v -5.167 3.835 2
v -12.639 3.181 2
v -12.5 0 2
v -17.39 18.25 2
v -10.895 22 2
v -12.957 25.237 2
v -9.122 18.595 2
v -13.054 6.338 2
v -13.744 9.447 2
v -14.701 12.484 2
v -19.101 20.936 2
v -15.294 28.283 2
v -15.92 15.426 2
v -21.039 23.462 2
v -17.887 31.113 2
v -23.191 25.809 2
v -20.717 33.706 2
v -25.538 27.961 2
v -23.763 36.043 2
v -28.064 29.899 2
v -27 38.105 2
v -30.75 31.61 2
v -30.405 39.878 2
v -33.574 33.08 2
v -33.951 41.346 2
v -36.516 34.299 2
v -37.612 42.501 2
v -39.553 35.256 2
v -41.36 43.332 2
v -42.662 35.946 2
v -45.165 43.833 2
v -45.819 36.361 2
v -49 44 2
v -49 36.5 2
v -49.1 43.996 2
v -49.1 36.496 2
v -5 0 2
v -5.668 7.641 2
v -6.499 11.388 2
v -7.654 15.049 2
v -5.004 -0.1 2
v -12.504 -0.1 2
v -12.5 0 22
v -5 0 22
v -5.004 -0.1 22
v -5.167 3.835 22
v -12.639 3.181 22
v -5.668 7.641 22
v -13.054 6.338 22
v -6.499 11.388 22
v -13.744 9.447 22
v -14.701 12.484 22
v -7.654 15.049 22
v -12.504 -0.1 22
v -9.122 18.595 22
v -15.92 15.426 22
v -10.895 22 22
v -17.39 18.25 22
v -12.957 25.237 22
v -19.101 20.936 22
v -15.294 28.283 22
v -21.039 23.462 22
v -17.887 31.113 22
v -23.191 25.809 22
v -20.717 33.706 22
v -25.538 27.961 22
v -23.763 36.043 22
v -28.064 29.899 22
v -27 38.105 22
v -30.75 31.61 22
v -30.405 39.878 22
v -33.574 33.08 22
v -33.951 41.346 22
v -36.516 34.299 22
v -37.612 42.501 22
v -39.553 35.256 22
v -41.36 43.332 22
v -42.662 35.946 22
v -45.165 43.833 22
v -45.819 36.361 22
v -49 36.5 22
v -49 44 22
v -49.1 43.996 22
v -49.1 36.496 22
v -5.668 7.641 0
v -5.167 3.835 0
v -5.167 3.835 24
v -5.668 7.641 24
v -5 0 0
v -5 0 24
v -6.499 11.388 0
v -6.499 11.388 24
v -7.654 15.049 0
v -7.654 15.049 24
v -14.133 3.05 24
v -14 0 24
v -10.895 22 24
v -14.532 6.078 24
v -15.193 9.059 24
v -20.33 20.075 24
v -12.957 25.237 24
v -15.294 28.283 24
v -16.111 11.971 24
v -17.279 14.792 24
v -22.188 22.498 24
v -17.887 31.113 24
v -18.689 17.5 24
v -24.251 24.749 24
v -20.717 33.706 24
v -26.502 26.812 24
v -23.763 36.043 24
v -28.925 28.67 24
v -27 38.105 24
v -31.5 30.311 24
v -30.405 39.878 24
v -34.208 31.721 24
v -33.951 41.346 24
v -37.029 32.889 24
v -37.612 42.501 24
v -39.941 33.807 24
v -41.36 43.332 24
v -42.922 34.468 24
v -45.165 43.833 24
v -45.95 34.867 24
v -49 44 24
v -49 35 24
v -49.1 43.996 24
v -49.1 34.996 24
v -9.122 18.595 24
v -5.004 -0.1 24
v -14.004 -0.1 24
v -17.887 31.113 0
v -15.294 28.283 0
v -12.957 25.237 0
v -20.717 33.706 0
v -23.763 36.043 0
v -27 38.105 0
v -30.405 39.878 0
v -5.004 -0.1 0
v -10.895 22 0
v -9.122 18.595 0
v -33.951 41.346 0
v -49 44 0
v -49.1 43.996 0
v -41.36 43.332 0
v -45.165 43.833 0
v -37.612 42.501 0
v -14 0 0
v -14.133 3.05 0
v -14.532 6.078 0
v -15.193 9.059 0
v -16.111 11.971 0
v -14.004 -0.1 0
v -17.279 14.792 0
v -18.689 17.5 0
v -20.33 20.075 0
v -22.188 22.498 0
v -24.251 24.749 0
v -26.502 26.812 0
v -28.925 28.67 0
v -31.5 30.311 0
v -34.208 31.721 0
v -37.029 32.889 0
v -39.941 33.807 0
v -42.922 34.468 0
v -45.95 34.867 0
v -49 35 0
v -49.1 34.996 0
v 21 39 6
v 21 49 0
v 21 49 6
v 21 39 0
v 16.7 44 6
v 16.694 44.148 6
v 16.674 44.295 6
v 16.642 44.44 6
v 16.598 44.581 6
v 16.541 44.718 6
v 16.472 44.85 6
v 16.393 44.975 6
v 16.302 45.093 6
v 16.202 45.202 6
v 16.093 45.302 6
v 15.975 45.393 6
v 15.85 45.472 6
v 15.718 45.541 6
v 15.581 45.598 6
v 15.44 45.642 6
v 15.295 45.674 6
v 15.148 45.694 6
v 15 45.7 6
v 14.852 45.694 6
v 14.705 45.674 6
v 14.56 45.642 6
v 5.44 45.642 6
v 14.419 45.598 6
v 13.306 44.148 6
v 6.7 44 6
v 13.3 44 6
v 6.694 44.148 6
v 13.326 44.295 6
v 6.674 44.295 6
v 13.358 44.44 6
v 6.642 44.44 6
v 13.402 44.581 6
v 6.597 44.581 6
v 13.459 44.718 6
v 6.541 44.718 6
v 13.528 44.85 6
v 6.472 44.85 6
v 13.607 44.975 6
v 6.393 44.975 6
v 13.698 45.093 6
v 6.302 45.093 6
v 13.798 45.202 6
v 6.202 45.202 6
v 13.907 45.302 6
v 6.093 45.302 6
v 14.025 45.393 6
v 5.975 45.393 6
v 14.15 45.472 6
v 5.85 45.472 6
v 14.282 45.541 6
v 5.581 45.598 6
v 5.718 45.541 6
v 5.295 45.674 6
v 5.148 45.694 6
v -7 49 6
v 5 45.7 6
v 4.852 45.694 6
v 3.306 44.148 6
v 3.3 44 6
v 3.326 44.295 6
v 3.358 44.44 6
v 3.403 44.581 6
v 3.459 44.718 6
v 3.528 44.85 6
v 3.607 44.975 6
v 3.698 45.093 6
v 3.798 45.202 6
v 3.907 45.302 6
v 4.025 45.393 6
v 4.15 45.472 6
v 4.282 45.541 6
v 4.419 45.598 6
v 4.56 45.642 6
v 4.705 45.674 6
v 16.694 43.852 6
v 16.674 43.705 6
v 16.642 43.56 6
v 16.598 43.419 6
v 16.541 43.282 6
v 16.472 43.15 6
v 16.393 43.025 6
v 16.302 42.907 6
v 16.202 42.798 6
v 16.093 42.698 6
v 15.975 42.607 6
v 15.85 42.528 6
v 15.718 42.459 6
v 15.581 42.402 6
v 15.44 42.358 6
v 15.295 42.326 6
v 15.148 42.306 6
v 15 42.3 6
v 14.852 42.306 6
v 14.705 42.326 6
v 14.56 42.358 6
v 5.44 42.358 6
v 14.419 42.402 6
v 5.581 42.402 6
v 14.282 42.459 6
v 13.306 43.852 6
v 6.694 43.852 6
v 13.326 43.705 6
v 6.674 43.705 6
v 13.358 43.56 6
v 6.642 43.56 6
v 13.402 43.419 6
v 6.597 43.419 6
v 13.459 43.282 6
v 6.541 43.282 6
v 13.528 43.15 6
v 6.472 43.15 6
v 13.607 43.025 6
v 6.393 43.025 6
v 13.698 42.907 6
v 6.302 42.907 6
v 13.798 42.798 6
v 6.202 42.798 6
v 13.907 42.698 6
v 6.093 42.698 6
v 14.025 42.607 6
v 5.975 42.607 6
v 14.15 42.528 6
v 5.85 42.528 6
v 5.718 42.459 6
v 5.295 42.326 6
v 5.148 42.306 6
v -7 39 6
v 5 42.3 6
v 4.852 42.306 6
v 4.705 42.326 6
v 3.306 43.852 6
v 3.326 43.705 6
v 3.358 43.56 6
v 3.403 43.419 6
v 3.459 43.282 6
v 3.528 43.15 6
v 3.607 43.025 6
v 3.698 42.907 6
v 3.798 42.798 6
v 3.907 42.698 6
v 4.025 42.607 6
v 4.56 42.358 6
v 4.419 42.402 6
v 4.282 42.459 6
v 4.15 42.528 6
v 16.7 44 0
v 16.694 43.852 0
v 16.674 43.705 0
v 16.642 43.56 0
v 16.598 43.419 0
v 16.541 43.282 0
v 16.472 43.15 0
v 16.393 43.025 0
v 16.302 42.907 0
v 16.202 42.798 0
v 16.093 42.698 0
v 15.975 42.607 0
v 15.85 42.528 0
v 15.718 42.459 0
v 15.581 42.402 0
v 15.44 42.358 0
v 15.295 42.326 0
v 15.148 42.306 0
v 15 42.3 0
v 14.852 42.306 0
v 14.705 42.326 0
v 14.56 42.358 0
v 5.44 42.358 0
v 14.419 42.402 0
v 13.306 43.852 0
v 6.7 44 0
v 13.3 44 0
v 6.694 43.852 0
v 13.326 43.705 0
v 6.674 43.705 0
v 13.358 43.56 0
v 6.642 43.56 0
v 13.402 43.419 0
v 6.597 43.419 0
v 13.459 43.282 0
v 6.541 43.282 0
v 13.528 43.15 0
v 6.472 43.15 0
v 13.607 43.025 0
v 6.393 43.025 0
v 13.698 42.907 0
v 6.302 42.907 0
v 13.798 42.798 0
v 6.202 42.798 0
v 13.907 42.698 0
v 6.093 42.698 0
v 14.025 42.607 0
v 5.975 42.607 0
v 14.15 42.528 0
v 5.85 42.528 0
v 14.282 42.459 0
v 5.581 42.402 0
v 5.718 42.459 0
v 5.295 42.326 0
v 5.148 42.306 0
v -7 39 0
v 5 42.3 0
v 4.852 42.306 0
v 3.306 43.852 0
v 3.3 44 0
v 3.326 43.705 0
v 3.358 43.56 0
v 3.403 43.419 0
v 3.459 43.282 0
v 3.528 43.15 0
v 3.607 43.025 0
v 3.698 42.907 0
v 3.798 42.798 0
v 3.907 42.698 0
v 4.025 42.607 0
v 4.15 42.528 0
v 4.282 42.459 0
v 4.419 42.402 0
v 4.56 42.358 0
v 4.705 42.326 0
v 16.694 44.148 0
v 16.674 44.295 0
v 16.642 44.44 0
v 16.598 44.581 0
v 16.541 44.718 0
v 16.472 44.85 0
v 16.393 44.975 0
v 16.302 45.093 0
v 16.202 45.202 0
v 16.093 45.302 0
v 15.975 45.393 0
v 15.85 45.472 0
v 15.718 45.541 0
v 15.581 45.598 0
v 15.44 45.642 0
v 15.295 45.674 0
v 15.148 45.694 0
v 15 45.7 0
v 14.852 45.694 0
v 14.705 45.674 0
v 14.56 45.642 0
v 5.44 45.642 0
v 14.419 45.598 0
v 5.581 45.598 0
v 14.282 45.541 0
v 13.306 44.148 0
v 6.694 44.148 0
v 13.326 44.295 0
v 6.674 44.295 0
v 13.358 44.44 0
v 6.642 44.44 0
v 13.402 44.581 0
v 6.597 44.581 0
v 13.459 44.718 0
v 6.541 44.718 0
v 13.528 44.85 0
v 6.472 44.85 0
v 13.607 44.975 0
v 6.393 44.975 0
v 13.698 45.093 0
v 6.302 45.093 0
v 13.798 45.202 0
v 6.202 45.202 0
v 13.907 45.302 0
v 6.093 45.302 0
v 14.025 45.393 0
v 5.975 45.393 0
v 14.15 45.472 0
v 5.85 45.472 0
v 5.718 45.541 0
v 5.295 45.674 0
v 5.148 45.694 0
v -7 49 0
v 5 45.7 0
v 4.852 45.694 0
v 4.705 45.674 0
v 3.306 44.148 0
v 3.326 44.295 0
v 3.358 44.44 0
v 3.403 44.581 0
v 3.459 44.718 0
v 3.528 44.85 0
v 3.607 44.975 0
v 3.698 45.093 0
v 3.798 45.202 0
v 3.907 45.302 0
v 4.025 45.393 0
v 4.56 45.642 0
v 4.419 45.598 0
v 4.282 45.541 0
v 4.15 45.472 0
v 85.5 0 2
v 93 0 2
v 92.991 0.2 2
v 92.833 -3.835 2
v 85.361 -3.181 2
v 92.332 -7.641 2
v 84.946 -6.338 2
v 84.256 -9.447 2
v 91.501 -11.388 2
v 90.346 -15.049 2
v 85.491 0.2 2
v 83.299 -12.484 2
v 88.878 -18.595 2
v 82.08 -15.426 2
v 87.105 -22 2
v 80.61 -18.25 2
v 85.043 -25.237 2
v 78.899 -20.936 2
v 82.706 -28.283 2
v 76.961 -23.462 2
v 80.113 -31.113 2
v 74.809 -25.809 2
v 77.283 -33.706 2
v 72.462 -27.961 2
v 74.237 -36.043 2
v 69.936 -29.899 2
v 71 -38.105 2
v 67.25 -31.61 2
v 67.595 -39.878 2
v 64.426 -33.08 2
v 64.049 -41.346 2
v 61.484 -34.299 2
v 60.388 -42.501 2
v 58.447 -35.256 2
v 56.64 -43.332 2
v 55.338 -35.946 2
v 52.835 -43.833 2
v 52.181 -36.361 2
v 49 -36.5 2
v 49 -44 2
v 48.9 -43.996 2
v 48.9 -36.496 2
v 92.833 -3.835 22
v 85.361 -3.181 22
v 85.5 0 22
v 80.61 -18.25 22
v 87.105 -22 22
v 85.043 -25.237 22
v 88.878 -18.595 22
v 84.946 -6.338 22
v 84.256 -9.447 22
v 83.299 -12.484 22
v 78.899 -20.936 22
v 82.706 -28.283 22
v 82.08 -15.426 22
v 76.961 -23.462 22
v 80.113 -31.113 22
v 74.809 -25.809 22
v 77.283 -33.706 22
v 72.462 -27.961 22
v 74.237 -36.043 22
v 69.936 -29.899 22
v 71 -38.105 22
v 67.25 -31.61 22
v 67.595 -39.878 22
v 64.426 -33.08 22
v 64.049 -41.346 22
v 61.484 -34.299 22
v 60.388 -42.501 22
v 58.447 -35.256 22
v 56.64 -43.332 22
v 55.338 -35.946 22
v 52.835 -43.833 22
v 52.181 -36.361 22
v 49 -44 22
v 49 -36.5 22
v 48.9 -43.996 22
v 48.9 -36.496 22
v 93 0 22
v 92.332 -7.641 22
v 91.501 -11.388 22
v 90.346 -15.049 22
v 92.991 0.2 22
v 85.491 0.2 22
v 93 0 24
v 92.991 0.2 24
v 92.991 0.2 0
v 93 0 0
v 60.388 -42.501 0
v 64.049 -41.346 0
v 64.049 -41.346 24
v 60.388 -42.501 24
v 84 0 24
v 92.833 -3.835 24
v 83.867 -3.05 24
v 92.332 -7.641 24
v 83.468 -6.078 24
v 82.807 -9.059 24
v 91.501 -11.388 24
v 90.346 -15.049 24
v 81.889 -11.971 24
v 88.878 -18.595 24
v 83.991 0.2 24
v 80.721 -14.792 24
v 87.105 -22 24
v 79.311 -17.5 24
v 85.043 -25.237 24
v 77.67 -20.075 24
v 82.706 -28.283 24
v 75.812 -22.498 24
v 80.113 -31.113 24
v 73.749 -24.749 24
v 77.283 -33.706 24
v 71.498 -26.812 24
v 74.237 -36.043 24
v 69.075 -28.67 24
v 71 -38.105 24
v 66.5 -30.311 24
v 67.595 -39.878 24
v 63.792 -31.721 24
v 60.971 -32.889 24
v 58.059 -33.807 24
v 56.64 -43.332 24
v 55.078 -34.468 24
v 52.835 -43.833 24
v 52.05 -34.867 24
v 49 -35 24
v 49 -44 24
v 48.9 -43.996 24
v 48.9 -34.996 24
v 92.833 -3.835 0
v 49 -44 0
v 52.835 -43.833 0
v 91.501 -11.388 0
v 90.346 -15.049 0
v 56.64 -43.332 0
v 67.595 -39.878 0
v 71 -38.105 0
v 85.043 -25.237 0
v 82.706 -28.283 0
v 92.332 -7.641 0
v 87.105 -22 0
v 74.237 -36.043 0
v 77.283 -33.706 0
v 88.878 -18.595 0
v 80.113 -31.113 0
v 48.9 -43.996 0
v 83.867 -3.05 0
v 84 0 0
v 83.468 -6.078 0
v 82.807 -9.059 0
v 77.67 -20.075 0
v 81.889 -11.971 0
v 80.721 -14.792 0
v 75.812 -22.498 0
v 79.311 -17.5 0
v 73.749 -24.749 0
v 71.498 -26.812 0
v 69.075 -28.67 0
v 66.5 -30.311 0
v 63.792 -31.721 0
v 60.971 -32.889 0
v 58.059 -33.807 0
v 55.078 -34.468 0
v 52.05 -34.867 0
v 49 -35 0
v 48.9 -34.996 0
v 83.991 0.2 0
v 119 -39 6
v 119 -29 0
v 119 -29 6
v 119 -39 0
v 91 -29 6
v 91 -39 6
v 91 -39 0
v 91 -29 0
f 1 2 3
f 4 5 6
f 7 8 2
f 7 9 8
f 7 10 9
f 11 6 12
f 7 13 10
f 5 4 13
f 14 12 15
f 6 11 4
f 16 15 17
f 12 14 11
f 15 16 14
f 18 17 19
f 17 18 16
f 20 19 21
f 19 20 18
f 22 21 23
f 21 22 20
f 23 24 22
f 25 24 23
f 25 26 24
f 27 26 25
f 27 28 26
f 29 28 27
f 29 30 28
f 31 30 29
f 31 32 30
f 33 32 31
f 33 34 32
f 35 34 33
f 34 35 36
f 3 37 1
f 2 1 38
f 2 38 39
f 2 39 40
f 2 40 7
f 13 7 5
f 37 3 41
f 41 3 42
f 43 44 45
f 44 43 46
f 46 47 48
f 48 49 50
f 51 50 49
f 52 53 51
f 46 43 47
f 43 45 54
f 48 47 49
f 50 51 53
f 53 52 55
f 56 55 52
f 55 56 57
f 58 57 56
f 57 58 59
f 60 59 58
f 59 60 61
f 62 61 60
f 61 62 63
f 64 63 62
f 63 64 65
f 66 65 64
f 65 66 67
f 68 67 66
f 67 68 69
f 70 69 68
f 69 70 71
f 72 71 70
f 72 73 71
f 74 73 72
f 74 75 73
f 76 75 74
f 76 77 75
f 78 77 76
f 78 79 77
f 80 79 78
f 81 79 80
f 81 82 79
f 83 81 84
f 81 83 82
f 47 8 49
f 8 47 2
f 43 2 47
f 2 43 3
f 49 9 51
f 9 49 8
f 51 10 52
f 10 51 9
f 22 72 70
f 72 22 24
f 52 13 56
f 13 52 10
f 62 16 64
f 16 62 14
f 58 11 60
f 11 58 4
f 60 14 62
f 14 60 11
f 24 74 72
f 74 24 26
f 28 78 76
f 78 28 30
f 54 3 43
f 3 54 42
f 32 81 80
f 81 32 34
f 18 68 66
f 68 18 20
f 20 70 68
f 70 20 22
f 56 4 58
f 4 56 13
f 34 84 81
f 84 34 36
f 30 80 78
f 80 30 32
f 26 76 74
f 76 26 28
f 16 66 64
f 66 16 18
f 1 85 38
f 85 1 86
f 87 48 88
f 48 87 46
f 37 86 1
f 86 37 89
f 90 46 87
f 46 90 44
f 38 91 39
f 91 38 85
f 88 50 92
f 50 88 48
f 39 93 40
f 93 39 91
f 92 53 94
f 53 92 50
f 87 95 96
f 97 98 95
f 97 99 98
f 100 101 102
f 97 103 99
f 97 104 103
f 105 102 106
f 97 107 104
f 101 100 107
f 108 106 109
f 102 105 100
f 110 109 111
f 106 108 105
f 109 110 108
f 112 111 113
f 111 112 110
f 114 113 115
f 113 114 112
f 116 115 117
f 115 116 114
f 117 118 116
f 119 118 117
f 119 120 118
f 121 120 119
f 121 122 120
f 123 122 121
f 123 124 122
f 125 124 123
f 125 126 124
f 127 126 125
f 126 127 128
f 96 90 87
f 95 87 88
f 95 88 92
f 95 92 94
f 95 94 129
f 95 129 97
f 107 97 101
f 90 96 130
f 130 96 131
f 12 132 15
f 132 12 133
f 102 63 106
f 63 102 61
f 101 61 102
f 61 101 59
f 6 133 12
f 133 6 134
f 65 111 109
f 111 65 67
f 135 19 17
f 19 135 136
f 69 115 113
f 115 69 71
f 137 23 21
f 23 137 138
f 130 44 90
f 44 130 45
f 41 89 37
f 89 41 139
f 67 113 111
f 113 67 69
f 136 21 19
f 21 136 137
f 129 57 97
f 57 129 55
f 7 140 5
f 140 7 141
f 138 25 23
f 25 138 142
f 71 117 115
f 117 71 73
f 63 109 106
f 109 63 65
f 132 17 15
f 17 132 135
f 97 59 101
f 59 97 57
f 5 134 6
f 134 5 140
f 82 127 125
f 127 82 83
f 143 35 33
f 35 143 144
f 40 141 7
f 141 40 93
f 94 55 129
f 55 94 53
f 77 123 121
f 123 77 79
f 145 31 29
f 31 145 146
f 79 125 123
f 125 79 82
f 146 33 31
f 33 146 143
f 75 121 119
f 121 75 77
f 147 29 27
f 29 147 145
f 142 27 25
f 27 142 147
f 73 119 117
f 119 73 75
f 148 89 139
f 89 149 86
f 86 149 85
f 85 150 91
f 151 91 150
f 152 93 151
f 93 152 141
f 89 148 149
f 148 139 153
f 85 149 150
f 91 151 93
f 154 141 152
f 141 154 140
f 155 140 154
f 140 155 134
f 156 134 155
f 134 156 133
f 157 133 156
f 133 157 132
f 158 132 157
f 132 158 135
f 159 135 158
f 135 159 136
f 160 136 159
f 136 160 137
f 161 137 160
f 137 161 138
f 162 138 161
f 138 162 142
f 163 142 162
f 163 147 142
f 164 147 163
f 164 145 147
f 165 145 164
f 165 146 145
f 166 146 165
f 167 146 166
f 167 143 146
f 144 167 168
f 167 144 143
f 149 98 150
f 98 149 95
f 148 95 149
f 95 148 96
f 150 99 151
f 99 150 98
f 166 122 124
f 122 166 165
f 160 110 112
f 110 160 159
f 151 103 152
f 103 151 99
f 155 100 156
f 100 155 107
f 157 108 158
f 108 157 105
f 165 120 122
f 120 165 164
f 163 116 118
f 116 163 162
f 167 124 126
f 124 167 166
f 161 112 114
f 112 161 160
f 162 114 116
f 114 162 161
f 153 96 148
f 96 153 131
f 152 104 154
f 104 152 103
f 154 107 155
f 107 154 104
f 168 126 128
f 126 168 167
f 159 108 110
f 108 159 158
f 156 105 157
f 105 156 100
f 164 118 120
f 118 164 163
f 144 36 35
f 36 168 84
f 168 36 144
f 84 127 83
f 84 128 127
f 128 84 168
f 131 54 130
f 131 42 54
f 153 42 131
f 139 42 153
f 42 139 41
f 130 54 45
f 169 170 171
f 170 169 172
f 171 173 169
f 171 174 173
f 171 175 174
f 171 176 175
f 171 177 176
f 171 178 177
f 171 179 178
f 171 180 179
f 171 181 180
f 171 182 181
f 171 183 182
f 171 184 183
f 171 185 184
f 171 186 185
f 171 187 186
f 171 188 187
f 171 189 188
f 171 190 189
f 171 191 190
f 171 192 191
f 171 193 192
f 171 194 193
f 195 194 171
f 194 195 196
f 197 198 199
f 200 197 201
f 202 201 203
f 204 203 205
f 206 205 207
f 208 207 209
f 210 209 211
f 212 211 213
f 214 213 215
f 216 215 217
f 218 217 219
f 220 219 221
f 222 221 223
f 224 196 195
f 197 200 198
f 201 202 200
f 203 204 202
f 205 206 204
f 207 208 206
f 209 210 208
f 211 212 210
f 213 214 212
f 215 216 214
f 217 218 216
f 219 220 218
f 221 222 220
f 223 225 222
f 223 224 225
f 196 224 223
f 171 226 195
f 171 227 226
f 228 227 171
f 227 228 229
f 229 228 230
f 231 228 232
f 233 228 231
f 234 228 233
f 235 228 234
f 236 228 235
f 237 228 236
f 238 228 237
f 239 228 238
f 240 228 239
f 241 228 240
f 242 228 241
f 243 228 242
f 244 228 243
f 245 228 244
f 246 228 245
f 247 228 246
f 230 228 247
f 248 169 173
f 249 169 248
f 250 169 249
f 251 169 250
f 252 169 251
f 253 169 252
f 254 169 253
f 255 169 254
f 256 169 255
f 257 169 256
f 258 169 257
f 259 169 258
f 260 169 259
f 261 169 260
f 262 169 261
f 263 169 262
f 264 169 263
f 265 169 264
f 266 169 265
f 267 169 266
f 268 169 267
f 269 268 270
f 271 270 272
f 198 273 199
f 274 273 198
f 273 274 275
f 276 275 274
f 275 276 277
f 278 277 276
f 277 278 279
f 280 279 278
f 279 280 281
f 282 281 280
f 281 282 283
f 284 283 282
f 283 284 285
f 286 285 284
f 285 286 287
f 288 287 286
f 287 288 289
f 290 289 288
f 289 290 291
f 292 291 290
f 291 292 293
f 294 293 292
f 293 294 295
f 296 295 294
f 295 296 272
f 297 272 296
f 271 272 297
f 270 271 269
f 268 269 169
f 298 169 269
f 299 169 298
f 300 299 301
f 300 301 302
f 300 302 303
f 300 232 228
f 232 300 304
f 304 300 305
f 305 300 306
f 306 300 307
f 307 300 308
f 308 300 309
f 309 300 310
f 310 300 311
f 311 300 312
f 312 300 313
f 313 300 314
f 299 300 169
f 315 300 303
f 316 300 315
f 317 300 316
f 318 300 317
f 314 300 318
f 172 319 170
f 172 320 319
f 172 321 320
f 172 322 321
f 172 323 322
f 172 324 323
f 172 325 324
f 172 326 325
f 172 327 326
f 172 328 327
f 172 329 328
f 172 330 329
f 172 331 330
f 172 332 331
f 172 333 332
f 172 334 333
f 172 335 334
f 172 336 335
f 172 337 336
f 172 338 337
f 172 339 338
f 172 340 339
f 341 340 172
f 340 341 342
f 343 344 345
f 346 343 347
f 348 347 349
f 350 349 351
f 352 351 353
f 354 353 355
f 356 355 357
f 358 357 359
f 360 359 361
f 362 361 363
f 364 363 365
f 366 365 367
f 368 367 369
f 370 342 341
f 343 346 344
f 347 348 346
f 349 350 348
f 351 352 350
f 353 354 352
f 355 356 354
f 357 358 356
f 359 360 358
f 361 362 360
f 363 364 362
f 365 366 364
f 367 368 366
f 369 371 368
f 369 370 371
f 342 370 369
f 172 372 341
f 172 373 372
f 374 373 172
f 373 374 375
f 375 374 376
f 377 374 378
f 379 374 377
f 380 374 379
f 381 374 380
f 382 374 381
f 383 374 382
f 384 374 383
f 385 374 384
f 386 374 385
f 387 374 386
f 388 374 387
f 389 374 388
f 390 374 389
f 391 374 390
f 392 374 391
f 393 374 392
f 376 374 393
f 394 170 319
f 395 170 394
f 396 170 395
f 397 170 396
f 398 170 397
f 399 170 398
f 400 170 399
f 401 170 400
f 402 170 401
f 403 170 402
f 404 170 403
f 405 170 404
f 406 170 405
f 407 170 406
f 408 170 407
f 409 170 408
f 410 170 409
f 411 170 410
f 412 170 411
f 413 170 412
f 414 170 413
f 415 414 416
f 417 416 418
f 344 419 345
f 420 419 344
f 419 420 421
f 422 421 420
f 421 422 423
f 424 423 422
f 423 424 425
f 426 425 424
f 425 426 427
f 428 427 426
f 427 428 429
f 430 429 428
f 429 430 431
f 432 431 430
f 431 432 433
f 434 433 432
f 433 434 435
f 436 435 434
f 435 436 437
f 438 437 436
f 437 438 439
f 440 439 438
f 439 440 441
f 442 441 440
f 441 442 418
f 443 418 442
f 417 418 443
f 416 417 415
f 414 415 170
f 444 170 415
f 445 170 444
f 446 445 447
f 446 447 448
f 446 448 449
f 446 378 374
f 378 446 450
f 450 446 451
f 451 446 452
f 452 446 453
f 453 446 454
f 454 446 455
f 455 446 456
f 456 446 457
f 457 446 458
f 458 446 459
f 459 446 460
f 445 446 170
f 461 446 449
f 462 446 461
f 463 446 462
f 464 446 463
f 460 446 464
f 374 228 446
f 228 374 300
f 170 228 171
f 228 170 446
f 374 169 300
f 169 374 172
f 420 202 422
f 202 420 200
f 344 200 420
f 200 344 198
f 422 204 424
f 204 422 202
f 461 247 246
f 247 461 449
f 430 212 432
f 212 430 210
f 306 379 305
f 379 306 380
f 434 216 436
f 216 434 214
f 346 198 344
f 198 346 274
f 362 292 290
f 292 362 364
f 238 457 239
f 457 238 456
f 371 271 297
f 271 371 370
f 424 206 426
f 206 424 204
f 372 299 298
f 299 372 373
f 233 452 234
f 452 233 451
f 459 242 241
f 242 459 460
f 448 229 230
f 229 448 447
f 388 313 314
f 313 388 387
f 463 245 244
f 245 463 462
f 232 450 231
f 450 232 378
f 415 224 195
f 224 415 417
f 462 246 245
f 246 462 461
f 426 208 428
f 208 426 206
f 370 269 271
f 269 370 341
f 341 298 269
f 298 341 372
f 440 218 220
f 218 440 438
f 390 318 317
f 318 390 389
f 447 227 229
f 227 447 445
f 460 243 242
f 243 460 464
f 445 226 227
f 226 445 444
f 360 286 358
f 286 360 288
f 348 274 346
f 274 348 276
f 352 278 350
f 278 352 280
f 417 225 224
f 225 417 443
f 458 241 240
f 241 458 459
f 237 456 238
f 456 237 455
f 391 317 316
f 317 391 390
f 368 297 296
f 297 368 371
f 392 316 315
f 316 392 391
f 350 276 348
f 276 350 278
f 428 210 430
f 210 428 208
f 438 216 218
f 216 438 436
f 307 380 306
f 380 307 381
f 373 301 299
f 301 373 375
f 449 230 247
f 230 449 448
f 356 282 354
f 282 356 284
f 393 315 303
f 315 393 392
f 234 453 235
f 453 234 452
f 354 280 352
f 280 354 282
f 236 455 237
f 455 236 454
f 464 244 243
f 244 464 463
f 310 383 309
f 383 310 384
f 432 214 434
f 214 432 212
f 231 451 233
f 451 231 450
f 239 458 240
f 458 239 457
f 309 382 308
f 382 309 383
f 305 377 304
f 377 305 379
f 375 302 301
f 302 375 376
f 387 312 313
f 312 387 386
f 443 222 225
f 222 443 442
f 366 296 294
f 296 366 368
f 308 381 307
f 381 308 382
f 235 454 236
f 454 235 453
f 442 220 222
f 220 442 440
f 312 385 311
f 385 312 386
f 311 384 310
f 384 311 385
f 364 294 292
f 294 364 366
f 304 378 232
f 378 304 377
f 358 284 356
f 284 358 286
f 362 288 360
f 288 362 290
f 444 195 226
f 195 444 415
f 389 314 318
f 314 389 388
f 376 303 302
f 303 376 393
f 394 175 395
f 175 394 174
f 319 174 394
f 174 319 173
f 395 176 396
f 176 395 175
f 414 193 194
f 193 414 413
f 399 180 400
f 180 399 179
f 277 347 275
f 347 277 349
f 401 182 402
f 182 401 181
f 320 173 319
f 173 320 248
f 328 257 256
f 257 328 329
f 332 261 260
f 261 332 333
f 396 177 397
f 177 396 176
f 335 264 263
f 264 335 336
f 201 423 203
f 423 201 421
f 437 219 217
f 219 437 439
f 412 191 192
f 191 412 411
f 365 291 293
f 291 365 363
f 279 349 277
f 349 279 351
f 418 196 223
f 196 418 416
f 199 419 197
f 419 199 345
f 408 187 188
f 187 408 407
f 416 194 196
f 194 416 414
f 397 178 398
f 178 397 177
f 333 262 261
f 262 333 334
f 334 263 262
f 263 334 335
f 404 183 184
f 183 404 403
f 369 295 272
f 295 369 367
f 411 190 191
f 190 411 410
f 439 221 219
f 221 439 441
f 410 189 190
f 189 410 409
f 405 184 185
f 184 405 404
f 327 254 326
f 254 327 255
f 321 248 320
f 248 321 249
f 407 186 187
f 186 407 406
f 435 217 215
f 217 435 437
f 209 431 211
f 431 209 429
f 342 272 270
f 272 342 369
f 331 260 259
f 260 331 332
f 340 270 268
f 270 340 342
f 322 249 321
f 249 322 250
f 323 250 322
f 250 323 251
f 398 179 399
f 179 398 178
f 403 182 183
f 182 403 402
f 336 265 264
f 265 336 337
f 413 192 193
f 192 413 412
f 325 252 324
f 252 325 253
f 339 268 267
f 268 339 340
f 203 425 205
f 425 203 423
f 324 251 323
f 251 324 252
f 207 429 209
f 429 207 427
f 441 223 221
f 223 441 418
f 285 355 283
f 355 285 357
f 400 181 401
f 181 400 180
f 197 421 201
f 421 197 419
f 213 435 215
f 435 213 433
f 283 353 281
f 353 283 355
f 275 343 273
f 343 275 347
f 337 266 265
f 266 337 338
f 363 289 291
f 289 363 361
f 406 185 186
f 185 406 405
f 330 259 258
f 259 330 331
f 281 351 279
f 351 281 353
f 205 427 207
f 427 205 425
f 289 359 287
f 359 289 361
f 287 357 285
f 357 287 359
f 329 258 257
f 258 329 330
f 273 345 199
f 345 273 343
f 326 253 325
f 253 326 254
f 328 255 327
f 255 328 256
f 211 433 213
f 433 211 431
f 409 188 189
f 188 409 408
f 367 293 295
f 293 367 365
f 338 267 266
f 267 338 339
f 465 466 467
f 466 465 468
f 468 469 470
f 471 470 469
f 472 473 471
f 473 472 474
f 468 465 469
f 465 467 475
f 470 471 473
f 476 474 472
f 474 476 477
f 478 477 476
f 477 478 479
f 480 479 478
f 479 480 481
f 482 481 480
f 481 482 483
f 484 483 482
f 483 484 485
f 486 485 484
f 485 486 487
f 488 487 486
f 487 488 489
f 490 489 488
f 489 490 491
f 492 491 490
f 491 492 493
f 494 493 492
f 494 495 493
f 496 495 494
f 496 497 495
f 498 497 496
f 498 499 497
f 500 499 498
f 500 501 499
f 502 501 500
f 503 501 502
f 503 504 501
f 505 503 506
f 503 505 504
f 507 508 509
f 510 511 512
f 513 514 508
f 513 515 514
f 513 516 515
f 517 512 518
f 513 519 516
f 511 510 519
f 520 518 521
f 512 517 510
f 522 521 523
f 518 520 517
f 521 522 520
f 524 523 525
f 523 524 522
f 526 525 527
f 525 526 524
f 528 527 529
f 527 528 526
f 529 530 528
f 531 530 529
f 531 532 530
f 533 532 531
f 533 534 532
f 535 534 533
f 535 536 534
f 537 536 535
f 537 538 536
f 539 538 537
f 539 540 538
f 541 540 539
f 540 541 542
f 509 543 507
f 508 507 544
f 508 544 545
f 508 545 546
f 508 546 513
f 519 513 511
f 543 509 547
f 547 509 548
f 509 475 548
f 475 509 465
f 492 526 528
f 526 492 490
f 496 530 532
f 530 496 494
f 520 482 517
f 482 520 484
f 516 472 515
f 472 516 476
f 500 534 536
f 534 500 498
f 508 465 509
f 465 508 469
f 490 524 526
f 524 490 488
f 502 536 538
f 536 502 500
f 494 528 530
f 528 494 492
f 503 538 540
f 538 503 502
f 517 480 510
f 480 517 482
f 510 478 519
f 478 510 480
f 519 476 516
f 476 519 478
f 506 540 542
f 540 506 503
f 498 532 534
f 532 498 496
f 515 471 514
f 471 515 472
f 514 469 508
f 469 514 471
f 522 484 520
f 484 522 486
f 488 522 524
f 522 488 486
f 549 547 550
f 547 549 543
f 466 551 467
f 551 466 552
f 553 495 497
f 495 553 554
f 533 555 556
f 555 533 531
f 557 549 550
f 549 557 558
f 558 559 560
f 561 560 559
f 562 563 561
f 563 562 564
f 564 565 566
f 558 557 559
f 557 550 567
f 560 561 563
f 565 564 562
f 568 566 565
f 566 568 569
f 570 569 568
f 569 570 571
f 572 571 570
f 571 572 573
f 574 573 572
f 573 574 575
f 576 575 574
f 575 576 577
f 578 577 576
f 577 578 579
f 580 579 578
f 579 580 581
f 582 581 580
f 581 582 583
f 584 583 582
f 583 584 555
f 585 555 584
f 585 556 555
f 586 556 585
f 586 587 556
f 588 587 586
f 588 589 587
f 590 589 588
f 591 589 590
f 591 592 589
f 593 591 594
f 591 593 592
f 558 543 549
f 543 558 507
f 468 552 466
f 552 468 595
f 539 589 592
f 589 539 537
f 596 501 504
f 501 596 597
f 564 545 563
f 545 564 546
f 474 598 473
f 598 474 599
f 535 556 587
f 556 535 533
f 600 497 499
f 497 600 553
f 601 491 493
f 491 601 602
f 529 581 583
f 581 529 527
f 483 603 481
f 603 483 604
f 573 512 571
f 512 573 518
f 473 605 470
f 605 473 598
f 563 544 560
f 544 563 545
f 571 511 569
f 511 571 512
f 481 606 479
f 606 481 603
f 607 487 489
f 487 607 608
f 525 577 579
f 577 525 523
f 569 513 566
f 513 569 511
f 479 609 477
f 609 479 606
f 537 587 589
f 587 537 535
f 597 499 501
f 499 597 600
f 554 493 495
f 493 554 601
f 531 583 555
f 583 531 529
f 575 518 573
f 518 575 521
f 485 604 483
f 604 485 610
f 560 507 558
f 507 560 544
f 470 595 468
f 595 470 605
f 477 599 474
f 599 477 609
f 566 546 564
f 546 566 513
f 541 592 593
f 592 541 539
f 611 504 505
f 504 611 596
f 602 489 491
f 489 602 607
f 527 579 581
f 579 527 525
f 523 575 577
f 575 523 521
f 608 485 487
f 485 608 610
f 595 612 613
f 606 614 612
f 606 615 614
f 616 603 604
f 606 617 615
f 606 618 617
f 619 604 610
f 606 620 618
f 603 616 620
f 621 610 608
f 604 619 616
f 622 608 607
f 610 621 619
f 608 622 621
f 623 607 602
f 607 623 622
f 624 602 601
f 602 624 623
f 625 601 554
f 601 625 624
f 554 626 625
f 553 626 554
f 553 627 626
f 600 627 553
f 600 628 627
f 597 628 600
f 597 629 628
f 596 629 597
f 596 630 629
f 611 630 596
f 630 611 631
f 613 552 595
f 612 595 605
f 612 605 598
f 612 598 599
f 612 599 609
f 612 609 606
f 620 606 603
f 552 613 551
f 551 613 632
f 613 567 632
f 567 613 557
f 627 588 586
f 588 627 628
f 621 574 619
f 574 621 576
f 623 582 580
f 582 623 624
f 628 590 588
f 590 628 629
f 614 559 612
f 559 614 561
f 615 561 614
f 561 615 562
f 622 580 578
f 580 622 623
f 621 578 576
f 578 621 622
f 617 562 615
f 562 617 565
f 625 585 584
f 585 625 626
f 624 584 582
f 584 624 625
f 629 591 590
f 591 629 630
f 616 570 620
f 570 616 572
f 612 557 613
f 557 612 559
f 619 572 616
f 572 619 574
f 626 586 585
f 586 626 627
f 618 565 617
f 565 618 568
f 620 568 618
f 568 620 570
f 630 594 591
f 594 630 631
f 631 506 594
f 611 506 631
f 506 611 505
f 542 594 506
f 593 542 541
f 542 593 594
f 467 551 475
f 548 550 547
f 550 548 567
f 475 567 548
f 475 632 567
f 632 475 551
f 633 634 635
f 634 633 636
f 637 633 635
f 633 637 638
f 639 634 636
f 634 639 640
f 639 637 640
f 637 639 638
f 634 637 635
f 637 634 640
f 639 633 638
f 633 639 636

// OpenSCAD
// file: parameters.scad
// Coax Faraday Generator Experiments v3 — shared parameters (mm)
// Three-layer coaxial: outer magnets + coil stator + inner magnets
// Orthodox Faraday only — mechanical → electrical. No overunity.
// Target: Anycubic Kobra 3 Max, 0.4 mm nozzle, 0.2 mm layers, PETG preferred.

$fn = 72;

// --- Printer / FDM ---
nozzle = 0.4;
layer = 0.2;
wall = 2.0;                 // ≥2 mm walls on drums
housing_wall = 2.4;
clearance_slip = 0.35;
press_interference = 0.15;  // 608 seat undersize total (~0.1–0.2)
magnet_pocket_xy = 0.25;    // +0.25 mm on diameter (within +0.2–0.3)
magnet_pocket_z = 0.15;     // +0.15 mm depth (within +0.1–0.2)

// --- Magnets (ASSUMPTION: Ø20×5 mm N42 axial discs, not bar stock) ---
magnet_d = 20;
magnet_h = 5;
pole_count = 8;             // alternating N/S around circumference

// --- Radial stack (from axis) ---
// Inner magnet FACE at r=33; magnets 5 mm thick → pocket floor at 33-5=28
r_inner_face = 33;
air_gap = 2.0;              // each side (1–3 mm sweep; nominal 2)
coil_radial = 9.0;          // winding depth
r_coil_inner = r_inner_face + air_gap;          // 35
r_coil_outer = r_coil_inner + coil_radial;      // 44
r_outer_face = r_coil_outer + air_gap;          // 46
// Outer magnet pocket floor (further out): face + thickness
r_outer_floor = r_outer_face + magnet_h;        // 51

inner_drum_od = 2 * (r_inner_face);             // face OD before pockets nuance
inner_drum_core_r = r_inner_face - magnet_h;    // 28
outer_drum_id = 2 * r_outer_face;               // clear to faces
outer_drum_od = 2 * (r_outer_floor + wall);     // ~106

axial_magnet = 22;          // pocket axial span (~magnet_d + margin)
coil_axial = 24;
drum_axial = 28;            // outer/inner drum barrel length

// --- Shaft / bearings 608-2RS ---
shaft_d = 8;
bearing_od = 22;
bearing_id = 8;
bearing_h = 7;
bearing_seat_od = bearing_od - press_interference; // ~21.85

// --- Base ---
base_w = 160;
base_d = 140;
base_h = 8;
post_h = 70;
post_spacing = 100;         // bearing center distance along shaft axis (Y)
post_d = 36;

// --- Crank ---
crank_arm_len = 80;
crank_arm_w = 16;
crank_arm_t = 10;
handle_d = 14;
handle_len = 40;

// --- Fasteners ---
m3_clear = 3.4;
m3_tap = 2.5;
m4_clear = 4.3;
// main file
include <parameters.scad>

// Fixed coil former / stator between magnet drums
// Split into 2 halves for assembly (print twice or mirror)

module stator_half(mirror_xz = false) {
    m = mirror_xz ? -1 : 1;
    difference() {
        union() {
            // Annular half
            intersection() {
                difference() {
                    cylinder(h = coil_axial, r = r_coil_outer);
                    translate([0, 0, -0.1])
                        cylinder(h = coil_axial + 0.2, r = r_coil_inner);
                    // Winding window recess (outer groove)
                    translate([0, 0, 2])
                        difference() {
                            cylinder(h = coil_axial - 4, r = r_coil_outer + 0.1);
                            cylinder(h = coil_axial - 4, r = r_coil_outer - coil_radial + 1.5);
                        }
                }
                translate([-0.1, m >= 0 ? -0.1 : -200, -0.1])
                    cube([200, 200.2, coil_axial + 0.2]);
            }
            // Mounting foot
            translate([r_coil_outer - 2, m * (r_coil_outer - 5), 0])
                cube([28, 10, 6]);
        }
        // Wire exit slot
        translate([r_coil_outer - 1, m * 2, coil_axial / 2 - 1.5])
            cube([8, 6, 3]);
        // Foot screw holes
        translate([r_coil_outer + 10, m * (r_coil_outer), -0.1])
            cylinder(h = 7, d = m3_clear);
        translate([r_coil_outer + 20, m * (r_coil_outer), -0.1])
            cylinder(h = 7, d = m3_clear);
        // Alignment peg holes
        for (z = [4, coil_axial - 4])
            translate([0, 0, z]) rotate([90, 0, 0])
                cylinder(h = 6, d = 2.2, center = true);
    }
}

module stator_bobbin_both() {
    // Export as one file with both halves side by side
    translate([-r_coil_outer - 5, 0, 0]) stator_half(false);
    translate([r_coil_outer + 5, 0, 0]) stator_half(true);
}
stator_bobbin_both();
